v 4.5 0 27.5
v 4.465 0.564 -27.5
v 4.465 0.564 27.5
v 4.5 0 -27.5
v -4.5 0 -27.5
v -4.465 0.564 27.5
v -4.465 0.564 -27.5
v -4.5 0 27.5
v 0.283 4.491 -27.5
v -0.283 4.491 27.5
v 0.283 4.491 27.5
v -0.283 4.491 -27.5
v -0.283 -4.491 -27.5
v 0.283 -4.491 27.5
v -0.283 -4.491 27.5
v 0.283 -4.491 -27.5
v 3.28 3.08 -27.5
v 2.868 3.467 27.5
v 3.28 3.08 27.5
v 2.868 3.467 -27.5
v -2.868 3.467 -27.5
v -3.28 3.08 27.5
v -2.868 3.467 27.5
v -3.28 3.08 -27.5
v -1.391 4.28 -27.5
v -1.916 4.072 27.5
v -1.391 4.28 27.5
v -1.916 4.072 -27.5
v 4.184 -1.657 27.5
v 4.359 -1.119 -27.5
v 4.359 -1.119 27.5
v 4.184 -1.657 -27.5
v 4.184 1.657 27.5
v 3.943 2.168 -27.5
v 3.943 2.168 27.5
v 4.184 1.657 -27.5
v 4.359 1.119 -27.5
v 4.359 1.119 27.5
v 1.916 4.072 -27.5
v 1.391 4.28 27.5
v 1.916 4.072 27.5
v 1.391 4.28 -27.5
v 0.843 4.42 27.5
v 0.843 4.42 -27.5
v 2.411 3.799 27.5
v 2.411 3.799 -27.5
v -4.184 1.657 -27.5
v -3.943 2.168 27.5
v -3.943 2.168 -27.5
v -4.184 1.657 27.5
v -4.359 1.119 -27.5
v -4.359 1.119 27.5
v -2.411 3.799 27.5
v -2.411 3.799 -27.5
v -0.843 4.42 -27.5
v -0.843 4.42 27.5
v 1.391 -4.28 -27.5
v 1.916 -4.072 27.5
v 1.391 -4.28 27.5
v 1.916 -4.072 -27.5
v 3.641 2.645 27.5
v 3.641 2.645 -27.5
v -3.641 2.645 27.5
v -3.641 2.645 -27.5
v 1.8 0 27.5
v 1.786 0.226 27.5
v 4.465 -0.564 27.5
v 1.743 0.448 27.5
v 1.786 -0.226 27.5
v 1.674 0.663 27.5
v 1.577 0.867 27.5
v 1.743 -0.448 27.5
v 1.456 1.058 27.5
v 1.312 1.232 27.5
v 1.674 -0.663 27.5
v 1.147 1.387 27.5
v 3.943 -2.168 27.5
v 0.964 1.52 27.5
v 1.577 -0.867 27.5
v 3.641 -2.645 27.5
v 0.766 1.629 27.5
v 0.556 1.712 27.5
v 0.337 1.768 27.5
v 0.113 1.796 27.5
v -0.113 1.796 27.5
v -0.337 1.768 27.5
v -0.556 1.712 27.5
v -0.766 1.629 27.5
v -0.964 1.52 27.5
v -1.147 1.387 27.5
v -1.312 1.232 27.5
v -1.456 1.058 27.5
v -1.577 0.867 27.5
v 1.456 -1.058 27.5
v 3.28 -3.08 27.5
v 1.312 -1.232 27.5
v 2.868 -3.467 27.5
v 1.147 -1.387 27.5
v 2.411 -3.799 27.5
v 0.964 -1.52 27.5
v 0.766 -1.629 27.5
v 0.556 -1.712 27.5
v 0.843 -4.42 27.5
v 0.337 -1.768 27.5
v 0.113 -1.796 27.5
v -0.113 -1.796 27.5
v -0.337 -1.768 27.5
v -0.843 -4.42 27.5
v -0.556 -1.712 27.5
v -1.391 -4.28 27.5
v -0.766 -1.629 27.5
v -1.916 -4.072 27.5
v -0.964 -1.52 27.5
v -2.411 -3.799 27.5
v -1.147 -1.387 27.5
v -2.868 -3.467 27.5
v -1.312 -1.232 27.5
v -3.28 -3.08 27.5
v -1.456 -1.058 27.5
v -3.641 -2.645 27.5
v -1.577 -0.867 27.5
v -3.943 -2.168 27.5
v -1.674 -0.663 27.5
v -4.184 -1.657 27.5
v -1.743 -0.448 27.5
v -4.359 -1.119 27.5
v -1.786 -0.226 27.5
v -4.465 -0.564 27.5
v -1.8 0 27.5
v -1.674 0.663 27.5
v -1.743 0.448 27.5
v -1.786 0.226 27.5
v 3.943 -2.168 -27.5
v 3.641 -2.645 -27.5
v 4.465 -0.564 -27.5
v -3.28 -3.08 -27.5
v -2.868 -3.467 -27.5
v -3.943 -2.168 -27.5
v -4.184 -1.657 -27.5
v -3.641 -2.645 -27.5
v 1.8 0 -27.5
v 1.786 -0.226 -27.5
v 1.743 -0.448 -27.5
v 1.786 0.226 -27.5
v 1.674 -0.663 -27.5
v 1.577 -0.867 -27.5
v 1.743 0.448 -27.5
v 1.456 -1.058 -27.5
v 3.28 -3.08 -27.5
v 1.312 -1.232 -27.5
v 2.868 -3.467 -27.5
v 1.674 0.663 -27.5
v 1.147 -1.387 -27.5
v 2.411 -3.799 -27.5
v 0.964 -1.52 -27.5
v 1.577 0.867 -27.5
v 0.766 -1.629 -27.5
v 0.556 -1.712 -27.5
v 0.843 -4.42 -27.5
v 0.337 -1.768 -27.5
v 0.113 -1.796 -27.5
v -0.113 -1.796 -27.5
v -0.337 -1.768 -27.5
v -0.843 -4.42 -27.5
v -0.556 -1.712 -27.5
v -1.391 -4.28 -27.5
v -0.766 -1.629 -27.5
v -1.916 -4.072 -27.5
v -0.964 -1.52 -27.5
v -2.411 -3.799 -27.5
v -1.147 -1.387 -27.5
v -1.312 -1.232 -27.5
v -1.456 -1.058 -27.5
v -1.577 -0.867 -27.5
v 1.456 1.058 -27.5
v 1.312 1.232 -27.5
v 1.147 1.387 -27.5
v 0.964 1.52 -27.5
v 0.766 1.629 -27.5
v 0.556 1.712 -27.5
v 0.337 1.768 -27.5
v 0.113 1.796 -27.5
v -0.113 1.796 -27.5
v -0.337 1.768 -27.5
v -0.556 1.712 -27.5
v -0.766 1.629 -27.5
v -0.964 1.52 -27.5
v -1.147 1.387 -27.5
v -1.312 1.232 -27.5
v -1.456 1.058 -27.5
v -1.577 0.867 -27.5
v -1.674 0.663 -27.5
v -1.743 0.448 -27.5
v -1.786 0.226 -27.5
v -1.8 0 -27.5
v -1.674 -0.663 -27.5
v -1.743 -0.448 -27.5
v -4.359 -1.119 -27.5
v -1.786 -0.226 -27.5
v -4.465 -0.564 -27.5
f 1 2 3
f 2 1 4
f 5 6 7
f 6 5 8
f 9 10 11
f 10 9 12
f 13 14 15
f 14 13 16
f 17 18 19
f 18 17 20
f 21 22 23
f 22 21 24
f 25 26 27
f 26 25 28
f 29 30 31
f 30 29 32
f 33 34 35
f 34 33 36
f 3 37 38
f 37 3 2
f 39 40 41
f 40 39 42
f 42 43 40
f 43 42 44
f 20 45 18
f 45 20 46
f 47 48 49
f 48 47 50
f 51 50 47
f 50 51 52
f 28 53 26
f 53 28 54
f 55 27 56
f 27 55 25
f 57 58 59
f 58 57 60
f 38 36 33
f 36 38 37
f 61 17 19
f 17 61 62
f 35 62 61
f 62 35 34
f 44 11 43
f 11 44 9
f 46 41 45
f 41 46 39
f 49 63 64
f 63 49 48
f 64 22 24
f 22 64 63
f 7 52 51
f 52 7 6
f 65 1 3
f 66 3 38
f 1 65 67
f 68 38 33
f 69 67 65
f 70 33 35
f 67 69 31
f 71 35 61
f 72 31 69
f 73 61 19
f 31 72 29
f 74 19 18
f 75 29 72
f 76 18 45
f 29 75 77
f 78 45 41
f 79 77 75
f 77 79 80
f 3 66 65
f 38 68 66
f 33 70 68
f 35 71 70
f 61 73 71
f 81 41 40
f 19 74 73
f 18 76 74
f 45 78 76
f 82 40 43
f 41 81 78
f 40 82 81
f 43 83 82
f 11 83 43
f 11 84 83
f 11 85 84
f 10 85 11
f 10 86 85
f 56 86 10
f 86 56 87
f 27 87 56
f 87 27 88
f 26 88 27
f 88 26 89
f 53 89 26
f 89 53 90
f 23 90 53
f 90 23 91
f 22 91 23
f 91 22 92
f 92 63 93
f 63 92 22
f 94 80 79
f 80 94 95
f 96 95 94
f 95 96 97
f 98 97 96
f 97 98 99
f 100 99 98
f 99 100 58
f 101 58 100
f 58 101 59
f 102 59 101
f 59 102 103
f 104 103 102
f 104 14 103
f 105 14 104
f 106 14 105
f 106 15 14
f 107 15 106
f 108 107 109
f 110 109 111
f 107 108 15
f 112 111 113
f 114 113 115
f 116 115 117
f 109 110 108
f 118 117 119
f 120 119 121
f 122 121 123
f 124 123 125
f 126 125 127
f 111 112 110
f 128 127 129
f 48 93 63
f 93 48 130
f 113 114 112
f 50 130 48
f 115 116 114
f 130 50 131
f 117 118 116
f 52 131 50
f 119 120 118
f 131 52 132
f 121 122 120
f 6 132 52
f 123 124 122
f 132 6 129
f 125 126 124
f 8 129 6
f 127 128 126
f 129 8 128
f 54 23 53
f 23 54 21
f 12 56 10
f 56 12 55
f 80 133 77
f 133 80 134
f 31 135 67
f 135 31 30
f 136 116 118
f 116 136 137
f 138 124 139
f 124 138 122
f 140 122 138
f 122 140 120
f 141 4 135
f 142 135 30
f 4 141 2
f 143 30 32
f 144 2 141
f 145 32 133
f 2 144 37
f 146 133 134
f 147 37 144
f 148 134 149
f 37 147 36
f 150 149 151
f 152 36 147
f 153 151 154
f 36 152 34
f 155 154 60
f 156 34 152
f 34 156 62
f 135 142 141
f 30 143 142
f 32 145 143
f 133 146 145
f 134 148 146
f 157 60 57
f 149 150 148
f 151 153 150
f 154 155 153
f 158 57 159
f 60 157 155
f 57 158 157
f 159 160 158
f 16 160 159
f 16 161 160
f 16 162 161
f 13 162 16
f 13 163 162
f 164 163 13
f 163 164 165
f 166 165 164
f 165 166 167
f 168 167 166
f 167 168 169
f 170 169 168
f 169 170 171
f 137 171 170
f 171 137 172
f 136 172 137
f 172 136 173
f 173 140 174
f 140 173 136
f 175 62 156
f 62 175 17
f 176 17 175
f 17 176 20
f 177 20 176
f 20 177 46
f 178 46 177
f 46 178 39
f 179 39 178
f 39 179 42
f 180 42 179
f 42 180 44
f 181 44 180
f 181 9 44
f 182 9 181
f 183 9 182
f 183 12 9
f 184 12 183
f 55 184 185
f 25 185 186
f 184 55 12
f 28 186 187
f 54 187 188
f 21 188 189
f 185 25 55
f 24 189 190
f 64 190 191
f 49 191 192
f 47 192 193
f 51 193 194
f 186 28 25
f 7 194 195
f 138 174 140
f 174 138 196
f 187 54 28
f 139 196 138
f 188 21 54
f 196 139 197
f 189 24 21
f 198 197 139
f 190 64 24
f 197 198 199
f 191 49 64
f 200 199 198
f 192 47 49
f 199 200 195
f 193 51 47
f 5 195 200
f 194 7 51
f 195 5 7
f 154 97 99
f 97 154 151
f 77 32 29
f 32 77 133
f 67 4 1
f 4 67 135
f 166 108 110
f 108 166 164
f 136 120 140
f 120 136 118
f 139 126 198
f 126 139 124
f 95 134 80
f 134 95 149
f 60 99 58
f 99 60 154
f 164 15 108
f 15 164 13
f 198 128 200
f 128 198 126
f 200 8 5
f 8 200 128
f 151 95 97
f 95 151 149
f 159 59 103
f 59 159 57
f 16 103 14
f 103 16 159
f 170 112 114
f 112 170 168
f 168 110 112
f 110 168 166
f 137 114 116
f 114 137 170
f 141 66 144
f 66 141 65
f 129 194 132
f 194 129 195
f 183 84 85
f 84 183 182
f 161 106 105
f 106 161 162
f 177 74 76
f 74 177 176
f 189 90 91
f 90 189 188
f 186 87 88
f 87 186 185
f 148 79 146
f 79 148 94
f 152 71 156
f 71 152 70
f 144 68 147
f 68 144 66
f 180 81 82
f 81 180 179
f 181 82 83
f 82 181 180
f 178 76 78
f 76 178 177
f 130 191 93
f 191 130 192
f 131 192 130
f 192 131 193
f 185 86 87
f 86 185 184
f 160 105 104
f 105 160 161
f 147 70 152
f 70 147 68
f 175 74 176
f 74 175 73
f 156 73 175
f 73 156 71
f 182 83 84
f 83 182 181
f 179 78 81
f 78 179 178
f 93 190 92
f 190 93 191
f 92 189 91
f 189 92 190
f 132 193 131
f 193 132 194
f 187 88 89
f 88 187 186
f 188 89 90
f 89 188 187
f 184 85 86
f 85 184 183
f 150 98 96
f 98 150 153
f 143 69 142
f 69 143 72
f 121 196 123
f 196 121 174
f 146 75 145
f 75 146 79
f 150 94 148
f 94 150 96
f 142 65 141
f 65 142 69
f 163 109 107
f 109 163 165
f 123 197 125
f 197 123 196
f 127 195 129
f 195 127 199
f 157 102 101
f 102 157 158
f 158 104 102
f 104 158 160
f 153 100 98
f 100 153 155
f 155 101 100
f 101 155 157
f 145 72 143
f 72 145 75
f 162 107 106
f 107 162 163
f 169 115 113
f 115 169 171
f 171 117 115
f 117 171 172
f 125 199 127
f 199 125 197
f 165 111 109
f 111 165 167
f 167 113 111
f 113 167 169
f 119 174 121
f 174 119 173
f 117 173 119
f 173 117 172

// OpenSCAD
$fn = 50;


difference() {
	union() {
		translate(v = [0, 0, -27.5000000000]) {
			cylinder(h = 55, r = 4.5000000000);
		}
	}
	union() {
		translate(v = [0, 0, -100.0000000000]) {
			cylinder(h = 200, r = 1.8000000000);
		}
	}
}
